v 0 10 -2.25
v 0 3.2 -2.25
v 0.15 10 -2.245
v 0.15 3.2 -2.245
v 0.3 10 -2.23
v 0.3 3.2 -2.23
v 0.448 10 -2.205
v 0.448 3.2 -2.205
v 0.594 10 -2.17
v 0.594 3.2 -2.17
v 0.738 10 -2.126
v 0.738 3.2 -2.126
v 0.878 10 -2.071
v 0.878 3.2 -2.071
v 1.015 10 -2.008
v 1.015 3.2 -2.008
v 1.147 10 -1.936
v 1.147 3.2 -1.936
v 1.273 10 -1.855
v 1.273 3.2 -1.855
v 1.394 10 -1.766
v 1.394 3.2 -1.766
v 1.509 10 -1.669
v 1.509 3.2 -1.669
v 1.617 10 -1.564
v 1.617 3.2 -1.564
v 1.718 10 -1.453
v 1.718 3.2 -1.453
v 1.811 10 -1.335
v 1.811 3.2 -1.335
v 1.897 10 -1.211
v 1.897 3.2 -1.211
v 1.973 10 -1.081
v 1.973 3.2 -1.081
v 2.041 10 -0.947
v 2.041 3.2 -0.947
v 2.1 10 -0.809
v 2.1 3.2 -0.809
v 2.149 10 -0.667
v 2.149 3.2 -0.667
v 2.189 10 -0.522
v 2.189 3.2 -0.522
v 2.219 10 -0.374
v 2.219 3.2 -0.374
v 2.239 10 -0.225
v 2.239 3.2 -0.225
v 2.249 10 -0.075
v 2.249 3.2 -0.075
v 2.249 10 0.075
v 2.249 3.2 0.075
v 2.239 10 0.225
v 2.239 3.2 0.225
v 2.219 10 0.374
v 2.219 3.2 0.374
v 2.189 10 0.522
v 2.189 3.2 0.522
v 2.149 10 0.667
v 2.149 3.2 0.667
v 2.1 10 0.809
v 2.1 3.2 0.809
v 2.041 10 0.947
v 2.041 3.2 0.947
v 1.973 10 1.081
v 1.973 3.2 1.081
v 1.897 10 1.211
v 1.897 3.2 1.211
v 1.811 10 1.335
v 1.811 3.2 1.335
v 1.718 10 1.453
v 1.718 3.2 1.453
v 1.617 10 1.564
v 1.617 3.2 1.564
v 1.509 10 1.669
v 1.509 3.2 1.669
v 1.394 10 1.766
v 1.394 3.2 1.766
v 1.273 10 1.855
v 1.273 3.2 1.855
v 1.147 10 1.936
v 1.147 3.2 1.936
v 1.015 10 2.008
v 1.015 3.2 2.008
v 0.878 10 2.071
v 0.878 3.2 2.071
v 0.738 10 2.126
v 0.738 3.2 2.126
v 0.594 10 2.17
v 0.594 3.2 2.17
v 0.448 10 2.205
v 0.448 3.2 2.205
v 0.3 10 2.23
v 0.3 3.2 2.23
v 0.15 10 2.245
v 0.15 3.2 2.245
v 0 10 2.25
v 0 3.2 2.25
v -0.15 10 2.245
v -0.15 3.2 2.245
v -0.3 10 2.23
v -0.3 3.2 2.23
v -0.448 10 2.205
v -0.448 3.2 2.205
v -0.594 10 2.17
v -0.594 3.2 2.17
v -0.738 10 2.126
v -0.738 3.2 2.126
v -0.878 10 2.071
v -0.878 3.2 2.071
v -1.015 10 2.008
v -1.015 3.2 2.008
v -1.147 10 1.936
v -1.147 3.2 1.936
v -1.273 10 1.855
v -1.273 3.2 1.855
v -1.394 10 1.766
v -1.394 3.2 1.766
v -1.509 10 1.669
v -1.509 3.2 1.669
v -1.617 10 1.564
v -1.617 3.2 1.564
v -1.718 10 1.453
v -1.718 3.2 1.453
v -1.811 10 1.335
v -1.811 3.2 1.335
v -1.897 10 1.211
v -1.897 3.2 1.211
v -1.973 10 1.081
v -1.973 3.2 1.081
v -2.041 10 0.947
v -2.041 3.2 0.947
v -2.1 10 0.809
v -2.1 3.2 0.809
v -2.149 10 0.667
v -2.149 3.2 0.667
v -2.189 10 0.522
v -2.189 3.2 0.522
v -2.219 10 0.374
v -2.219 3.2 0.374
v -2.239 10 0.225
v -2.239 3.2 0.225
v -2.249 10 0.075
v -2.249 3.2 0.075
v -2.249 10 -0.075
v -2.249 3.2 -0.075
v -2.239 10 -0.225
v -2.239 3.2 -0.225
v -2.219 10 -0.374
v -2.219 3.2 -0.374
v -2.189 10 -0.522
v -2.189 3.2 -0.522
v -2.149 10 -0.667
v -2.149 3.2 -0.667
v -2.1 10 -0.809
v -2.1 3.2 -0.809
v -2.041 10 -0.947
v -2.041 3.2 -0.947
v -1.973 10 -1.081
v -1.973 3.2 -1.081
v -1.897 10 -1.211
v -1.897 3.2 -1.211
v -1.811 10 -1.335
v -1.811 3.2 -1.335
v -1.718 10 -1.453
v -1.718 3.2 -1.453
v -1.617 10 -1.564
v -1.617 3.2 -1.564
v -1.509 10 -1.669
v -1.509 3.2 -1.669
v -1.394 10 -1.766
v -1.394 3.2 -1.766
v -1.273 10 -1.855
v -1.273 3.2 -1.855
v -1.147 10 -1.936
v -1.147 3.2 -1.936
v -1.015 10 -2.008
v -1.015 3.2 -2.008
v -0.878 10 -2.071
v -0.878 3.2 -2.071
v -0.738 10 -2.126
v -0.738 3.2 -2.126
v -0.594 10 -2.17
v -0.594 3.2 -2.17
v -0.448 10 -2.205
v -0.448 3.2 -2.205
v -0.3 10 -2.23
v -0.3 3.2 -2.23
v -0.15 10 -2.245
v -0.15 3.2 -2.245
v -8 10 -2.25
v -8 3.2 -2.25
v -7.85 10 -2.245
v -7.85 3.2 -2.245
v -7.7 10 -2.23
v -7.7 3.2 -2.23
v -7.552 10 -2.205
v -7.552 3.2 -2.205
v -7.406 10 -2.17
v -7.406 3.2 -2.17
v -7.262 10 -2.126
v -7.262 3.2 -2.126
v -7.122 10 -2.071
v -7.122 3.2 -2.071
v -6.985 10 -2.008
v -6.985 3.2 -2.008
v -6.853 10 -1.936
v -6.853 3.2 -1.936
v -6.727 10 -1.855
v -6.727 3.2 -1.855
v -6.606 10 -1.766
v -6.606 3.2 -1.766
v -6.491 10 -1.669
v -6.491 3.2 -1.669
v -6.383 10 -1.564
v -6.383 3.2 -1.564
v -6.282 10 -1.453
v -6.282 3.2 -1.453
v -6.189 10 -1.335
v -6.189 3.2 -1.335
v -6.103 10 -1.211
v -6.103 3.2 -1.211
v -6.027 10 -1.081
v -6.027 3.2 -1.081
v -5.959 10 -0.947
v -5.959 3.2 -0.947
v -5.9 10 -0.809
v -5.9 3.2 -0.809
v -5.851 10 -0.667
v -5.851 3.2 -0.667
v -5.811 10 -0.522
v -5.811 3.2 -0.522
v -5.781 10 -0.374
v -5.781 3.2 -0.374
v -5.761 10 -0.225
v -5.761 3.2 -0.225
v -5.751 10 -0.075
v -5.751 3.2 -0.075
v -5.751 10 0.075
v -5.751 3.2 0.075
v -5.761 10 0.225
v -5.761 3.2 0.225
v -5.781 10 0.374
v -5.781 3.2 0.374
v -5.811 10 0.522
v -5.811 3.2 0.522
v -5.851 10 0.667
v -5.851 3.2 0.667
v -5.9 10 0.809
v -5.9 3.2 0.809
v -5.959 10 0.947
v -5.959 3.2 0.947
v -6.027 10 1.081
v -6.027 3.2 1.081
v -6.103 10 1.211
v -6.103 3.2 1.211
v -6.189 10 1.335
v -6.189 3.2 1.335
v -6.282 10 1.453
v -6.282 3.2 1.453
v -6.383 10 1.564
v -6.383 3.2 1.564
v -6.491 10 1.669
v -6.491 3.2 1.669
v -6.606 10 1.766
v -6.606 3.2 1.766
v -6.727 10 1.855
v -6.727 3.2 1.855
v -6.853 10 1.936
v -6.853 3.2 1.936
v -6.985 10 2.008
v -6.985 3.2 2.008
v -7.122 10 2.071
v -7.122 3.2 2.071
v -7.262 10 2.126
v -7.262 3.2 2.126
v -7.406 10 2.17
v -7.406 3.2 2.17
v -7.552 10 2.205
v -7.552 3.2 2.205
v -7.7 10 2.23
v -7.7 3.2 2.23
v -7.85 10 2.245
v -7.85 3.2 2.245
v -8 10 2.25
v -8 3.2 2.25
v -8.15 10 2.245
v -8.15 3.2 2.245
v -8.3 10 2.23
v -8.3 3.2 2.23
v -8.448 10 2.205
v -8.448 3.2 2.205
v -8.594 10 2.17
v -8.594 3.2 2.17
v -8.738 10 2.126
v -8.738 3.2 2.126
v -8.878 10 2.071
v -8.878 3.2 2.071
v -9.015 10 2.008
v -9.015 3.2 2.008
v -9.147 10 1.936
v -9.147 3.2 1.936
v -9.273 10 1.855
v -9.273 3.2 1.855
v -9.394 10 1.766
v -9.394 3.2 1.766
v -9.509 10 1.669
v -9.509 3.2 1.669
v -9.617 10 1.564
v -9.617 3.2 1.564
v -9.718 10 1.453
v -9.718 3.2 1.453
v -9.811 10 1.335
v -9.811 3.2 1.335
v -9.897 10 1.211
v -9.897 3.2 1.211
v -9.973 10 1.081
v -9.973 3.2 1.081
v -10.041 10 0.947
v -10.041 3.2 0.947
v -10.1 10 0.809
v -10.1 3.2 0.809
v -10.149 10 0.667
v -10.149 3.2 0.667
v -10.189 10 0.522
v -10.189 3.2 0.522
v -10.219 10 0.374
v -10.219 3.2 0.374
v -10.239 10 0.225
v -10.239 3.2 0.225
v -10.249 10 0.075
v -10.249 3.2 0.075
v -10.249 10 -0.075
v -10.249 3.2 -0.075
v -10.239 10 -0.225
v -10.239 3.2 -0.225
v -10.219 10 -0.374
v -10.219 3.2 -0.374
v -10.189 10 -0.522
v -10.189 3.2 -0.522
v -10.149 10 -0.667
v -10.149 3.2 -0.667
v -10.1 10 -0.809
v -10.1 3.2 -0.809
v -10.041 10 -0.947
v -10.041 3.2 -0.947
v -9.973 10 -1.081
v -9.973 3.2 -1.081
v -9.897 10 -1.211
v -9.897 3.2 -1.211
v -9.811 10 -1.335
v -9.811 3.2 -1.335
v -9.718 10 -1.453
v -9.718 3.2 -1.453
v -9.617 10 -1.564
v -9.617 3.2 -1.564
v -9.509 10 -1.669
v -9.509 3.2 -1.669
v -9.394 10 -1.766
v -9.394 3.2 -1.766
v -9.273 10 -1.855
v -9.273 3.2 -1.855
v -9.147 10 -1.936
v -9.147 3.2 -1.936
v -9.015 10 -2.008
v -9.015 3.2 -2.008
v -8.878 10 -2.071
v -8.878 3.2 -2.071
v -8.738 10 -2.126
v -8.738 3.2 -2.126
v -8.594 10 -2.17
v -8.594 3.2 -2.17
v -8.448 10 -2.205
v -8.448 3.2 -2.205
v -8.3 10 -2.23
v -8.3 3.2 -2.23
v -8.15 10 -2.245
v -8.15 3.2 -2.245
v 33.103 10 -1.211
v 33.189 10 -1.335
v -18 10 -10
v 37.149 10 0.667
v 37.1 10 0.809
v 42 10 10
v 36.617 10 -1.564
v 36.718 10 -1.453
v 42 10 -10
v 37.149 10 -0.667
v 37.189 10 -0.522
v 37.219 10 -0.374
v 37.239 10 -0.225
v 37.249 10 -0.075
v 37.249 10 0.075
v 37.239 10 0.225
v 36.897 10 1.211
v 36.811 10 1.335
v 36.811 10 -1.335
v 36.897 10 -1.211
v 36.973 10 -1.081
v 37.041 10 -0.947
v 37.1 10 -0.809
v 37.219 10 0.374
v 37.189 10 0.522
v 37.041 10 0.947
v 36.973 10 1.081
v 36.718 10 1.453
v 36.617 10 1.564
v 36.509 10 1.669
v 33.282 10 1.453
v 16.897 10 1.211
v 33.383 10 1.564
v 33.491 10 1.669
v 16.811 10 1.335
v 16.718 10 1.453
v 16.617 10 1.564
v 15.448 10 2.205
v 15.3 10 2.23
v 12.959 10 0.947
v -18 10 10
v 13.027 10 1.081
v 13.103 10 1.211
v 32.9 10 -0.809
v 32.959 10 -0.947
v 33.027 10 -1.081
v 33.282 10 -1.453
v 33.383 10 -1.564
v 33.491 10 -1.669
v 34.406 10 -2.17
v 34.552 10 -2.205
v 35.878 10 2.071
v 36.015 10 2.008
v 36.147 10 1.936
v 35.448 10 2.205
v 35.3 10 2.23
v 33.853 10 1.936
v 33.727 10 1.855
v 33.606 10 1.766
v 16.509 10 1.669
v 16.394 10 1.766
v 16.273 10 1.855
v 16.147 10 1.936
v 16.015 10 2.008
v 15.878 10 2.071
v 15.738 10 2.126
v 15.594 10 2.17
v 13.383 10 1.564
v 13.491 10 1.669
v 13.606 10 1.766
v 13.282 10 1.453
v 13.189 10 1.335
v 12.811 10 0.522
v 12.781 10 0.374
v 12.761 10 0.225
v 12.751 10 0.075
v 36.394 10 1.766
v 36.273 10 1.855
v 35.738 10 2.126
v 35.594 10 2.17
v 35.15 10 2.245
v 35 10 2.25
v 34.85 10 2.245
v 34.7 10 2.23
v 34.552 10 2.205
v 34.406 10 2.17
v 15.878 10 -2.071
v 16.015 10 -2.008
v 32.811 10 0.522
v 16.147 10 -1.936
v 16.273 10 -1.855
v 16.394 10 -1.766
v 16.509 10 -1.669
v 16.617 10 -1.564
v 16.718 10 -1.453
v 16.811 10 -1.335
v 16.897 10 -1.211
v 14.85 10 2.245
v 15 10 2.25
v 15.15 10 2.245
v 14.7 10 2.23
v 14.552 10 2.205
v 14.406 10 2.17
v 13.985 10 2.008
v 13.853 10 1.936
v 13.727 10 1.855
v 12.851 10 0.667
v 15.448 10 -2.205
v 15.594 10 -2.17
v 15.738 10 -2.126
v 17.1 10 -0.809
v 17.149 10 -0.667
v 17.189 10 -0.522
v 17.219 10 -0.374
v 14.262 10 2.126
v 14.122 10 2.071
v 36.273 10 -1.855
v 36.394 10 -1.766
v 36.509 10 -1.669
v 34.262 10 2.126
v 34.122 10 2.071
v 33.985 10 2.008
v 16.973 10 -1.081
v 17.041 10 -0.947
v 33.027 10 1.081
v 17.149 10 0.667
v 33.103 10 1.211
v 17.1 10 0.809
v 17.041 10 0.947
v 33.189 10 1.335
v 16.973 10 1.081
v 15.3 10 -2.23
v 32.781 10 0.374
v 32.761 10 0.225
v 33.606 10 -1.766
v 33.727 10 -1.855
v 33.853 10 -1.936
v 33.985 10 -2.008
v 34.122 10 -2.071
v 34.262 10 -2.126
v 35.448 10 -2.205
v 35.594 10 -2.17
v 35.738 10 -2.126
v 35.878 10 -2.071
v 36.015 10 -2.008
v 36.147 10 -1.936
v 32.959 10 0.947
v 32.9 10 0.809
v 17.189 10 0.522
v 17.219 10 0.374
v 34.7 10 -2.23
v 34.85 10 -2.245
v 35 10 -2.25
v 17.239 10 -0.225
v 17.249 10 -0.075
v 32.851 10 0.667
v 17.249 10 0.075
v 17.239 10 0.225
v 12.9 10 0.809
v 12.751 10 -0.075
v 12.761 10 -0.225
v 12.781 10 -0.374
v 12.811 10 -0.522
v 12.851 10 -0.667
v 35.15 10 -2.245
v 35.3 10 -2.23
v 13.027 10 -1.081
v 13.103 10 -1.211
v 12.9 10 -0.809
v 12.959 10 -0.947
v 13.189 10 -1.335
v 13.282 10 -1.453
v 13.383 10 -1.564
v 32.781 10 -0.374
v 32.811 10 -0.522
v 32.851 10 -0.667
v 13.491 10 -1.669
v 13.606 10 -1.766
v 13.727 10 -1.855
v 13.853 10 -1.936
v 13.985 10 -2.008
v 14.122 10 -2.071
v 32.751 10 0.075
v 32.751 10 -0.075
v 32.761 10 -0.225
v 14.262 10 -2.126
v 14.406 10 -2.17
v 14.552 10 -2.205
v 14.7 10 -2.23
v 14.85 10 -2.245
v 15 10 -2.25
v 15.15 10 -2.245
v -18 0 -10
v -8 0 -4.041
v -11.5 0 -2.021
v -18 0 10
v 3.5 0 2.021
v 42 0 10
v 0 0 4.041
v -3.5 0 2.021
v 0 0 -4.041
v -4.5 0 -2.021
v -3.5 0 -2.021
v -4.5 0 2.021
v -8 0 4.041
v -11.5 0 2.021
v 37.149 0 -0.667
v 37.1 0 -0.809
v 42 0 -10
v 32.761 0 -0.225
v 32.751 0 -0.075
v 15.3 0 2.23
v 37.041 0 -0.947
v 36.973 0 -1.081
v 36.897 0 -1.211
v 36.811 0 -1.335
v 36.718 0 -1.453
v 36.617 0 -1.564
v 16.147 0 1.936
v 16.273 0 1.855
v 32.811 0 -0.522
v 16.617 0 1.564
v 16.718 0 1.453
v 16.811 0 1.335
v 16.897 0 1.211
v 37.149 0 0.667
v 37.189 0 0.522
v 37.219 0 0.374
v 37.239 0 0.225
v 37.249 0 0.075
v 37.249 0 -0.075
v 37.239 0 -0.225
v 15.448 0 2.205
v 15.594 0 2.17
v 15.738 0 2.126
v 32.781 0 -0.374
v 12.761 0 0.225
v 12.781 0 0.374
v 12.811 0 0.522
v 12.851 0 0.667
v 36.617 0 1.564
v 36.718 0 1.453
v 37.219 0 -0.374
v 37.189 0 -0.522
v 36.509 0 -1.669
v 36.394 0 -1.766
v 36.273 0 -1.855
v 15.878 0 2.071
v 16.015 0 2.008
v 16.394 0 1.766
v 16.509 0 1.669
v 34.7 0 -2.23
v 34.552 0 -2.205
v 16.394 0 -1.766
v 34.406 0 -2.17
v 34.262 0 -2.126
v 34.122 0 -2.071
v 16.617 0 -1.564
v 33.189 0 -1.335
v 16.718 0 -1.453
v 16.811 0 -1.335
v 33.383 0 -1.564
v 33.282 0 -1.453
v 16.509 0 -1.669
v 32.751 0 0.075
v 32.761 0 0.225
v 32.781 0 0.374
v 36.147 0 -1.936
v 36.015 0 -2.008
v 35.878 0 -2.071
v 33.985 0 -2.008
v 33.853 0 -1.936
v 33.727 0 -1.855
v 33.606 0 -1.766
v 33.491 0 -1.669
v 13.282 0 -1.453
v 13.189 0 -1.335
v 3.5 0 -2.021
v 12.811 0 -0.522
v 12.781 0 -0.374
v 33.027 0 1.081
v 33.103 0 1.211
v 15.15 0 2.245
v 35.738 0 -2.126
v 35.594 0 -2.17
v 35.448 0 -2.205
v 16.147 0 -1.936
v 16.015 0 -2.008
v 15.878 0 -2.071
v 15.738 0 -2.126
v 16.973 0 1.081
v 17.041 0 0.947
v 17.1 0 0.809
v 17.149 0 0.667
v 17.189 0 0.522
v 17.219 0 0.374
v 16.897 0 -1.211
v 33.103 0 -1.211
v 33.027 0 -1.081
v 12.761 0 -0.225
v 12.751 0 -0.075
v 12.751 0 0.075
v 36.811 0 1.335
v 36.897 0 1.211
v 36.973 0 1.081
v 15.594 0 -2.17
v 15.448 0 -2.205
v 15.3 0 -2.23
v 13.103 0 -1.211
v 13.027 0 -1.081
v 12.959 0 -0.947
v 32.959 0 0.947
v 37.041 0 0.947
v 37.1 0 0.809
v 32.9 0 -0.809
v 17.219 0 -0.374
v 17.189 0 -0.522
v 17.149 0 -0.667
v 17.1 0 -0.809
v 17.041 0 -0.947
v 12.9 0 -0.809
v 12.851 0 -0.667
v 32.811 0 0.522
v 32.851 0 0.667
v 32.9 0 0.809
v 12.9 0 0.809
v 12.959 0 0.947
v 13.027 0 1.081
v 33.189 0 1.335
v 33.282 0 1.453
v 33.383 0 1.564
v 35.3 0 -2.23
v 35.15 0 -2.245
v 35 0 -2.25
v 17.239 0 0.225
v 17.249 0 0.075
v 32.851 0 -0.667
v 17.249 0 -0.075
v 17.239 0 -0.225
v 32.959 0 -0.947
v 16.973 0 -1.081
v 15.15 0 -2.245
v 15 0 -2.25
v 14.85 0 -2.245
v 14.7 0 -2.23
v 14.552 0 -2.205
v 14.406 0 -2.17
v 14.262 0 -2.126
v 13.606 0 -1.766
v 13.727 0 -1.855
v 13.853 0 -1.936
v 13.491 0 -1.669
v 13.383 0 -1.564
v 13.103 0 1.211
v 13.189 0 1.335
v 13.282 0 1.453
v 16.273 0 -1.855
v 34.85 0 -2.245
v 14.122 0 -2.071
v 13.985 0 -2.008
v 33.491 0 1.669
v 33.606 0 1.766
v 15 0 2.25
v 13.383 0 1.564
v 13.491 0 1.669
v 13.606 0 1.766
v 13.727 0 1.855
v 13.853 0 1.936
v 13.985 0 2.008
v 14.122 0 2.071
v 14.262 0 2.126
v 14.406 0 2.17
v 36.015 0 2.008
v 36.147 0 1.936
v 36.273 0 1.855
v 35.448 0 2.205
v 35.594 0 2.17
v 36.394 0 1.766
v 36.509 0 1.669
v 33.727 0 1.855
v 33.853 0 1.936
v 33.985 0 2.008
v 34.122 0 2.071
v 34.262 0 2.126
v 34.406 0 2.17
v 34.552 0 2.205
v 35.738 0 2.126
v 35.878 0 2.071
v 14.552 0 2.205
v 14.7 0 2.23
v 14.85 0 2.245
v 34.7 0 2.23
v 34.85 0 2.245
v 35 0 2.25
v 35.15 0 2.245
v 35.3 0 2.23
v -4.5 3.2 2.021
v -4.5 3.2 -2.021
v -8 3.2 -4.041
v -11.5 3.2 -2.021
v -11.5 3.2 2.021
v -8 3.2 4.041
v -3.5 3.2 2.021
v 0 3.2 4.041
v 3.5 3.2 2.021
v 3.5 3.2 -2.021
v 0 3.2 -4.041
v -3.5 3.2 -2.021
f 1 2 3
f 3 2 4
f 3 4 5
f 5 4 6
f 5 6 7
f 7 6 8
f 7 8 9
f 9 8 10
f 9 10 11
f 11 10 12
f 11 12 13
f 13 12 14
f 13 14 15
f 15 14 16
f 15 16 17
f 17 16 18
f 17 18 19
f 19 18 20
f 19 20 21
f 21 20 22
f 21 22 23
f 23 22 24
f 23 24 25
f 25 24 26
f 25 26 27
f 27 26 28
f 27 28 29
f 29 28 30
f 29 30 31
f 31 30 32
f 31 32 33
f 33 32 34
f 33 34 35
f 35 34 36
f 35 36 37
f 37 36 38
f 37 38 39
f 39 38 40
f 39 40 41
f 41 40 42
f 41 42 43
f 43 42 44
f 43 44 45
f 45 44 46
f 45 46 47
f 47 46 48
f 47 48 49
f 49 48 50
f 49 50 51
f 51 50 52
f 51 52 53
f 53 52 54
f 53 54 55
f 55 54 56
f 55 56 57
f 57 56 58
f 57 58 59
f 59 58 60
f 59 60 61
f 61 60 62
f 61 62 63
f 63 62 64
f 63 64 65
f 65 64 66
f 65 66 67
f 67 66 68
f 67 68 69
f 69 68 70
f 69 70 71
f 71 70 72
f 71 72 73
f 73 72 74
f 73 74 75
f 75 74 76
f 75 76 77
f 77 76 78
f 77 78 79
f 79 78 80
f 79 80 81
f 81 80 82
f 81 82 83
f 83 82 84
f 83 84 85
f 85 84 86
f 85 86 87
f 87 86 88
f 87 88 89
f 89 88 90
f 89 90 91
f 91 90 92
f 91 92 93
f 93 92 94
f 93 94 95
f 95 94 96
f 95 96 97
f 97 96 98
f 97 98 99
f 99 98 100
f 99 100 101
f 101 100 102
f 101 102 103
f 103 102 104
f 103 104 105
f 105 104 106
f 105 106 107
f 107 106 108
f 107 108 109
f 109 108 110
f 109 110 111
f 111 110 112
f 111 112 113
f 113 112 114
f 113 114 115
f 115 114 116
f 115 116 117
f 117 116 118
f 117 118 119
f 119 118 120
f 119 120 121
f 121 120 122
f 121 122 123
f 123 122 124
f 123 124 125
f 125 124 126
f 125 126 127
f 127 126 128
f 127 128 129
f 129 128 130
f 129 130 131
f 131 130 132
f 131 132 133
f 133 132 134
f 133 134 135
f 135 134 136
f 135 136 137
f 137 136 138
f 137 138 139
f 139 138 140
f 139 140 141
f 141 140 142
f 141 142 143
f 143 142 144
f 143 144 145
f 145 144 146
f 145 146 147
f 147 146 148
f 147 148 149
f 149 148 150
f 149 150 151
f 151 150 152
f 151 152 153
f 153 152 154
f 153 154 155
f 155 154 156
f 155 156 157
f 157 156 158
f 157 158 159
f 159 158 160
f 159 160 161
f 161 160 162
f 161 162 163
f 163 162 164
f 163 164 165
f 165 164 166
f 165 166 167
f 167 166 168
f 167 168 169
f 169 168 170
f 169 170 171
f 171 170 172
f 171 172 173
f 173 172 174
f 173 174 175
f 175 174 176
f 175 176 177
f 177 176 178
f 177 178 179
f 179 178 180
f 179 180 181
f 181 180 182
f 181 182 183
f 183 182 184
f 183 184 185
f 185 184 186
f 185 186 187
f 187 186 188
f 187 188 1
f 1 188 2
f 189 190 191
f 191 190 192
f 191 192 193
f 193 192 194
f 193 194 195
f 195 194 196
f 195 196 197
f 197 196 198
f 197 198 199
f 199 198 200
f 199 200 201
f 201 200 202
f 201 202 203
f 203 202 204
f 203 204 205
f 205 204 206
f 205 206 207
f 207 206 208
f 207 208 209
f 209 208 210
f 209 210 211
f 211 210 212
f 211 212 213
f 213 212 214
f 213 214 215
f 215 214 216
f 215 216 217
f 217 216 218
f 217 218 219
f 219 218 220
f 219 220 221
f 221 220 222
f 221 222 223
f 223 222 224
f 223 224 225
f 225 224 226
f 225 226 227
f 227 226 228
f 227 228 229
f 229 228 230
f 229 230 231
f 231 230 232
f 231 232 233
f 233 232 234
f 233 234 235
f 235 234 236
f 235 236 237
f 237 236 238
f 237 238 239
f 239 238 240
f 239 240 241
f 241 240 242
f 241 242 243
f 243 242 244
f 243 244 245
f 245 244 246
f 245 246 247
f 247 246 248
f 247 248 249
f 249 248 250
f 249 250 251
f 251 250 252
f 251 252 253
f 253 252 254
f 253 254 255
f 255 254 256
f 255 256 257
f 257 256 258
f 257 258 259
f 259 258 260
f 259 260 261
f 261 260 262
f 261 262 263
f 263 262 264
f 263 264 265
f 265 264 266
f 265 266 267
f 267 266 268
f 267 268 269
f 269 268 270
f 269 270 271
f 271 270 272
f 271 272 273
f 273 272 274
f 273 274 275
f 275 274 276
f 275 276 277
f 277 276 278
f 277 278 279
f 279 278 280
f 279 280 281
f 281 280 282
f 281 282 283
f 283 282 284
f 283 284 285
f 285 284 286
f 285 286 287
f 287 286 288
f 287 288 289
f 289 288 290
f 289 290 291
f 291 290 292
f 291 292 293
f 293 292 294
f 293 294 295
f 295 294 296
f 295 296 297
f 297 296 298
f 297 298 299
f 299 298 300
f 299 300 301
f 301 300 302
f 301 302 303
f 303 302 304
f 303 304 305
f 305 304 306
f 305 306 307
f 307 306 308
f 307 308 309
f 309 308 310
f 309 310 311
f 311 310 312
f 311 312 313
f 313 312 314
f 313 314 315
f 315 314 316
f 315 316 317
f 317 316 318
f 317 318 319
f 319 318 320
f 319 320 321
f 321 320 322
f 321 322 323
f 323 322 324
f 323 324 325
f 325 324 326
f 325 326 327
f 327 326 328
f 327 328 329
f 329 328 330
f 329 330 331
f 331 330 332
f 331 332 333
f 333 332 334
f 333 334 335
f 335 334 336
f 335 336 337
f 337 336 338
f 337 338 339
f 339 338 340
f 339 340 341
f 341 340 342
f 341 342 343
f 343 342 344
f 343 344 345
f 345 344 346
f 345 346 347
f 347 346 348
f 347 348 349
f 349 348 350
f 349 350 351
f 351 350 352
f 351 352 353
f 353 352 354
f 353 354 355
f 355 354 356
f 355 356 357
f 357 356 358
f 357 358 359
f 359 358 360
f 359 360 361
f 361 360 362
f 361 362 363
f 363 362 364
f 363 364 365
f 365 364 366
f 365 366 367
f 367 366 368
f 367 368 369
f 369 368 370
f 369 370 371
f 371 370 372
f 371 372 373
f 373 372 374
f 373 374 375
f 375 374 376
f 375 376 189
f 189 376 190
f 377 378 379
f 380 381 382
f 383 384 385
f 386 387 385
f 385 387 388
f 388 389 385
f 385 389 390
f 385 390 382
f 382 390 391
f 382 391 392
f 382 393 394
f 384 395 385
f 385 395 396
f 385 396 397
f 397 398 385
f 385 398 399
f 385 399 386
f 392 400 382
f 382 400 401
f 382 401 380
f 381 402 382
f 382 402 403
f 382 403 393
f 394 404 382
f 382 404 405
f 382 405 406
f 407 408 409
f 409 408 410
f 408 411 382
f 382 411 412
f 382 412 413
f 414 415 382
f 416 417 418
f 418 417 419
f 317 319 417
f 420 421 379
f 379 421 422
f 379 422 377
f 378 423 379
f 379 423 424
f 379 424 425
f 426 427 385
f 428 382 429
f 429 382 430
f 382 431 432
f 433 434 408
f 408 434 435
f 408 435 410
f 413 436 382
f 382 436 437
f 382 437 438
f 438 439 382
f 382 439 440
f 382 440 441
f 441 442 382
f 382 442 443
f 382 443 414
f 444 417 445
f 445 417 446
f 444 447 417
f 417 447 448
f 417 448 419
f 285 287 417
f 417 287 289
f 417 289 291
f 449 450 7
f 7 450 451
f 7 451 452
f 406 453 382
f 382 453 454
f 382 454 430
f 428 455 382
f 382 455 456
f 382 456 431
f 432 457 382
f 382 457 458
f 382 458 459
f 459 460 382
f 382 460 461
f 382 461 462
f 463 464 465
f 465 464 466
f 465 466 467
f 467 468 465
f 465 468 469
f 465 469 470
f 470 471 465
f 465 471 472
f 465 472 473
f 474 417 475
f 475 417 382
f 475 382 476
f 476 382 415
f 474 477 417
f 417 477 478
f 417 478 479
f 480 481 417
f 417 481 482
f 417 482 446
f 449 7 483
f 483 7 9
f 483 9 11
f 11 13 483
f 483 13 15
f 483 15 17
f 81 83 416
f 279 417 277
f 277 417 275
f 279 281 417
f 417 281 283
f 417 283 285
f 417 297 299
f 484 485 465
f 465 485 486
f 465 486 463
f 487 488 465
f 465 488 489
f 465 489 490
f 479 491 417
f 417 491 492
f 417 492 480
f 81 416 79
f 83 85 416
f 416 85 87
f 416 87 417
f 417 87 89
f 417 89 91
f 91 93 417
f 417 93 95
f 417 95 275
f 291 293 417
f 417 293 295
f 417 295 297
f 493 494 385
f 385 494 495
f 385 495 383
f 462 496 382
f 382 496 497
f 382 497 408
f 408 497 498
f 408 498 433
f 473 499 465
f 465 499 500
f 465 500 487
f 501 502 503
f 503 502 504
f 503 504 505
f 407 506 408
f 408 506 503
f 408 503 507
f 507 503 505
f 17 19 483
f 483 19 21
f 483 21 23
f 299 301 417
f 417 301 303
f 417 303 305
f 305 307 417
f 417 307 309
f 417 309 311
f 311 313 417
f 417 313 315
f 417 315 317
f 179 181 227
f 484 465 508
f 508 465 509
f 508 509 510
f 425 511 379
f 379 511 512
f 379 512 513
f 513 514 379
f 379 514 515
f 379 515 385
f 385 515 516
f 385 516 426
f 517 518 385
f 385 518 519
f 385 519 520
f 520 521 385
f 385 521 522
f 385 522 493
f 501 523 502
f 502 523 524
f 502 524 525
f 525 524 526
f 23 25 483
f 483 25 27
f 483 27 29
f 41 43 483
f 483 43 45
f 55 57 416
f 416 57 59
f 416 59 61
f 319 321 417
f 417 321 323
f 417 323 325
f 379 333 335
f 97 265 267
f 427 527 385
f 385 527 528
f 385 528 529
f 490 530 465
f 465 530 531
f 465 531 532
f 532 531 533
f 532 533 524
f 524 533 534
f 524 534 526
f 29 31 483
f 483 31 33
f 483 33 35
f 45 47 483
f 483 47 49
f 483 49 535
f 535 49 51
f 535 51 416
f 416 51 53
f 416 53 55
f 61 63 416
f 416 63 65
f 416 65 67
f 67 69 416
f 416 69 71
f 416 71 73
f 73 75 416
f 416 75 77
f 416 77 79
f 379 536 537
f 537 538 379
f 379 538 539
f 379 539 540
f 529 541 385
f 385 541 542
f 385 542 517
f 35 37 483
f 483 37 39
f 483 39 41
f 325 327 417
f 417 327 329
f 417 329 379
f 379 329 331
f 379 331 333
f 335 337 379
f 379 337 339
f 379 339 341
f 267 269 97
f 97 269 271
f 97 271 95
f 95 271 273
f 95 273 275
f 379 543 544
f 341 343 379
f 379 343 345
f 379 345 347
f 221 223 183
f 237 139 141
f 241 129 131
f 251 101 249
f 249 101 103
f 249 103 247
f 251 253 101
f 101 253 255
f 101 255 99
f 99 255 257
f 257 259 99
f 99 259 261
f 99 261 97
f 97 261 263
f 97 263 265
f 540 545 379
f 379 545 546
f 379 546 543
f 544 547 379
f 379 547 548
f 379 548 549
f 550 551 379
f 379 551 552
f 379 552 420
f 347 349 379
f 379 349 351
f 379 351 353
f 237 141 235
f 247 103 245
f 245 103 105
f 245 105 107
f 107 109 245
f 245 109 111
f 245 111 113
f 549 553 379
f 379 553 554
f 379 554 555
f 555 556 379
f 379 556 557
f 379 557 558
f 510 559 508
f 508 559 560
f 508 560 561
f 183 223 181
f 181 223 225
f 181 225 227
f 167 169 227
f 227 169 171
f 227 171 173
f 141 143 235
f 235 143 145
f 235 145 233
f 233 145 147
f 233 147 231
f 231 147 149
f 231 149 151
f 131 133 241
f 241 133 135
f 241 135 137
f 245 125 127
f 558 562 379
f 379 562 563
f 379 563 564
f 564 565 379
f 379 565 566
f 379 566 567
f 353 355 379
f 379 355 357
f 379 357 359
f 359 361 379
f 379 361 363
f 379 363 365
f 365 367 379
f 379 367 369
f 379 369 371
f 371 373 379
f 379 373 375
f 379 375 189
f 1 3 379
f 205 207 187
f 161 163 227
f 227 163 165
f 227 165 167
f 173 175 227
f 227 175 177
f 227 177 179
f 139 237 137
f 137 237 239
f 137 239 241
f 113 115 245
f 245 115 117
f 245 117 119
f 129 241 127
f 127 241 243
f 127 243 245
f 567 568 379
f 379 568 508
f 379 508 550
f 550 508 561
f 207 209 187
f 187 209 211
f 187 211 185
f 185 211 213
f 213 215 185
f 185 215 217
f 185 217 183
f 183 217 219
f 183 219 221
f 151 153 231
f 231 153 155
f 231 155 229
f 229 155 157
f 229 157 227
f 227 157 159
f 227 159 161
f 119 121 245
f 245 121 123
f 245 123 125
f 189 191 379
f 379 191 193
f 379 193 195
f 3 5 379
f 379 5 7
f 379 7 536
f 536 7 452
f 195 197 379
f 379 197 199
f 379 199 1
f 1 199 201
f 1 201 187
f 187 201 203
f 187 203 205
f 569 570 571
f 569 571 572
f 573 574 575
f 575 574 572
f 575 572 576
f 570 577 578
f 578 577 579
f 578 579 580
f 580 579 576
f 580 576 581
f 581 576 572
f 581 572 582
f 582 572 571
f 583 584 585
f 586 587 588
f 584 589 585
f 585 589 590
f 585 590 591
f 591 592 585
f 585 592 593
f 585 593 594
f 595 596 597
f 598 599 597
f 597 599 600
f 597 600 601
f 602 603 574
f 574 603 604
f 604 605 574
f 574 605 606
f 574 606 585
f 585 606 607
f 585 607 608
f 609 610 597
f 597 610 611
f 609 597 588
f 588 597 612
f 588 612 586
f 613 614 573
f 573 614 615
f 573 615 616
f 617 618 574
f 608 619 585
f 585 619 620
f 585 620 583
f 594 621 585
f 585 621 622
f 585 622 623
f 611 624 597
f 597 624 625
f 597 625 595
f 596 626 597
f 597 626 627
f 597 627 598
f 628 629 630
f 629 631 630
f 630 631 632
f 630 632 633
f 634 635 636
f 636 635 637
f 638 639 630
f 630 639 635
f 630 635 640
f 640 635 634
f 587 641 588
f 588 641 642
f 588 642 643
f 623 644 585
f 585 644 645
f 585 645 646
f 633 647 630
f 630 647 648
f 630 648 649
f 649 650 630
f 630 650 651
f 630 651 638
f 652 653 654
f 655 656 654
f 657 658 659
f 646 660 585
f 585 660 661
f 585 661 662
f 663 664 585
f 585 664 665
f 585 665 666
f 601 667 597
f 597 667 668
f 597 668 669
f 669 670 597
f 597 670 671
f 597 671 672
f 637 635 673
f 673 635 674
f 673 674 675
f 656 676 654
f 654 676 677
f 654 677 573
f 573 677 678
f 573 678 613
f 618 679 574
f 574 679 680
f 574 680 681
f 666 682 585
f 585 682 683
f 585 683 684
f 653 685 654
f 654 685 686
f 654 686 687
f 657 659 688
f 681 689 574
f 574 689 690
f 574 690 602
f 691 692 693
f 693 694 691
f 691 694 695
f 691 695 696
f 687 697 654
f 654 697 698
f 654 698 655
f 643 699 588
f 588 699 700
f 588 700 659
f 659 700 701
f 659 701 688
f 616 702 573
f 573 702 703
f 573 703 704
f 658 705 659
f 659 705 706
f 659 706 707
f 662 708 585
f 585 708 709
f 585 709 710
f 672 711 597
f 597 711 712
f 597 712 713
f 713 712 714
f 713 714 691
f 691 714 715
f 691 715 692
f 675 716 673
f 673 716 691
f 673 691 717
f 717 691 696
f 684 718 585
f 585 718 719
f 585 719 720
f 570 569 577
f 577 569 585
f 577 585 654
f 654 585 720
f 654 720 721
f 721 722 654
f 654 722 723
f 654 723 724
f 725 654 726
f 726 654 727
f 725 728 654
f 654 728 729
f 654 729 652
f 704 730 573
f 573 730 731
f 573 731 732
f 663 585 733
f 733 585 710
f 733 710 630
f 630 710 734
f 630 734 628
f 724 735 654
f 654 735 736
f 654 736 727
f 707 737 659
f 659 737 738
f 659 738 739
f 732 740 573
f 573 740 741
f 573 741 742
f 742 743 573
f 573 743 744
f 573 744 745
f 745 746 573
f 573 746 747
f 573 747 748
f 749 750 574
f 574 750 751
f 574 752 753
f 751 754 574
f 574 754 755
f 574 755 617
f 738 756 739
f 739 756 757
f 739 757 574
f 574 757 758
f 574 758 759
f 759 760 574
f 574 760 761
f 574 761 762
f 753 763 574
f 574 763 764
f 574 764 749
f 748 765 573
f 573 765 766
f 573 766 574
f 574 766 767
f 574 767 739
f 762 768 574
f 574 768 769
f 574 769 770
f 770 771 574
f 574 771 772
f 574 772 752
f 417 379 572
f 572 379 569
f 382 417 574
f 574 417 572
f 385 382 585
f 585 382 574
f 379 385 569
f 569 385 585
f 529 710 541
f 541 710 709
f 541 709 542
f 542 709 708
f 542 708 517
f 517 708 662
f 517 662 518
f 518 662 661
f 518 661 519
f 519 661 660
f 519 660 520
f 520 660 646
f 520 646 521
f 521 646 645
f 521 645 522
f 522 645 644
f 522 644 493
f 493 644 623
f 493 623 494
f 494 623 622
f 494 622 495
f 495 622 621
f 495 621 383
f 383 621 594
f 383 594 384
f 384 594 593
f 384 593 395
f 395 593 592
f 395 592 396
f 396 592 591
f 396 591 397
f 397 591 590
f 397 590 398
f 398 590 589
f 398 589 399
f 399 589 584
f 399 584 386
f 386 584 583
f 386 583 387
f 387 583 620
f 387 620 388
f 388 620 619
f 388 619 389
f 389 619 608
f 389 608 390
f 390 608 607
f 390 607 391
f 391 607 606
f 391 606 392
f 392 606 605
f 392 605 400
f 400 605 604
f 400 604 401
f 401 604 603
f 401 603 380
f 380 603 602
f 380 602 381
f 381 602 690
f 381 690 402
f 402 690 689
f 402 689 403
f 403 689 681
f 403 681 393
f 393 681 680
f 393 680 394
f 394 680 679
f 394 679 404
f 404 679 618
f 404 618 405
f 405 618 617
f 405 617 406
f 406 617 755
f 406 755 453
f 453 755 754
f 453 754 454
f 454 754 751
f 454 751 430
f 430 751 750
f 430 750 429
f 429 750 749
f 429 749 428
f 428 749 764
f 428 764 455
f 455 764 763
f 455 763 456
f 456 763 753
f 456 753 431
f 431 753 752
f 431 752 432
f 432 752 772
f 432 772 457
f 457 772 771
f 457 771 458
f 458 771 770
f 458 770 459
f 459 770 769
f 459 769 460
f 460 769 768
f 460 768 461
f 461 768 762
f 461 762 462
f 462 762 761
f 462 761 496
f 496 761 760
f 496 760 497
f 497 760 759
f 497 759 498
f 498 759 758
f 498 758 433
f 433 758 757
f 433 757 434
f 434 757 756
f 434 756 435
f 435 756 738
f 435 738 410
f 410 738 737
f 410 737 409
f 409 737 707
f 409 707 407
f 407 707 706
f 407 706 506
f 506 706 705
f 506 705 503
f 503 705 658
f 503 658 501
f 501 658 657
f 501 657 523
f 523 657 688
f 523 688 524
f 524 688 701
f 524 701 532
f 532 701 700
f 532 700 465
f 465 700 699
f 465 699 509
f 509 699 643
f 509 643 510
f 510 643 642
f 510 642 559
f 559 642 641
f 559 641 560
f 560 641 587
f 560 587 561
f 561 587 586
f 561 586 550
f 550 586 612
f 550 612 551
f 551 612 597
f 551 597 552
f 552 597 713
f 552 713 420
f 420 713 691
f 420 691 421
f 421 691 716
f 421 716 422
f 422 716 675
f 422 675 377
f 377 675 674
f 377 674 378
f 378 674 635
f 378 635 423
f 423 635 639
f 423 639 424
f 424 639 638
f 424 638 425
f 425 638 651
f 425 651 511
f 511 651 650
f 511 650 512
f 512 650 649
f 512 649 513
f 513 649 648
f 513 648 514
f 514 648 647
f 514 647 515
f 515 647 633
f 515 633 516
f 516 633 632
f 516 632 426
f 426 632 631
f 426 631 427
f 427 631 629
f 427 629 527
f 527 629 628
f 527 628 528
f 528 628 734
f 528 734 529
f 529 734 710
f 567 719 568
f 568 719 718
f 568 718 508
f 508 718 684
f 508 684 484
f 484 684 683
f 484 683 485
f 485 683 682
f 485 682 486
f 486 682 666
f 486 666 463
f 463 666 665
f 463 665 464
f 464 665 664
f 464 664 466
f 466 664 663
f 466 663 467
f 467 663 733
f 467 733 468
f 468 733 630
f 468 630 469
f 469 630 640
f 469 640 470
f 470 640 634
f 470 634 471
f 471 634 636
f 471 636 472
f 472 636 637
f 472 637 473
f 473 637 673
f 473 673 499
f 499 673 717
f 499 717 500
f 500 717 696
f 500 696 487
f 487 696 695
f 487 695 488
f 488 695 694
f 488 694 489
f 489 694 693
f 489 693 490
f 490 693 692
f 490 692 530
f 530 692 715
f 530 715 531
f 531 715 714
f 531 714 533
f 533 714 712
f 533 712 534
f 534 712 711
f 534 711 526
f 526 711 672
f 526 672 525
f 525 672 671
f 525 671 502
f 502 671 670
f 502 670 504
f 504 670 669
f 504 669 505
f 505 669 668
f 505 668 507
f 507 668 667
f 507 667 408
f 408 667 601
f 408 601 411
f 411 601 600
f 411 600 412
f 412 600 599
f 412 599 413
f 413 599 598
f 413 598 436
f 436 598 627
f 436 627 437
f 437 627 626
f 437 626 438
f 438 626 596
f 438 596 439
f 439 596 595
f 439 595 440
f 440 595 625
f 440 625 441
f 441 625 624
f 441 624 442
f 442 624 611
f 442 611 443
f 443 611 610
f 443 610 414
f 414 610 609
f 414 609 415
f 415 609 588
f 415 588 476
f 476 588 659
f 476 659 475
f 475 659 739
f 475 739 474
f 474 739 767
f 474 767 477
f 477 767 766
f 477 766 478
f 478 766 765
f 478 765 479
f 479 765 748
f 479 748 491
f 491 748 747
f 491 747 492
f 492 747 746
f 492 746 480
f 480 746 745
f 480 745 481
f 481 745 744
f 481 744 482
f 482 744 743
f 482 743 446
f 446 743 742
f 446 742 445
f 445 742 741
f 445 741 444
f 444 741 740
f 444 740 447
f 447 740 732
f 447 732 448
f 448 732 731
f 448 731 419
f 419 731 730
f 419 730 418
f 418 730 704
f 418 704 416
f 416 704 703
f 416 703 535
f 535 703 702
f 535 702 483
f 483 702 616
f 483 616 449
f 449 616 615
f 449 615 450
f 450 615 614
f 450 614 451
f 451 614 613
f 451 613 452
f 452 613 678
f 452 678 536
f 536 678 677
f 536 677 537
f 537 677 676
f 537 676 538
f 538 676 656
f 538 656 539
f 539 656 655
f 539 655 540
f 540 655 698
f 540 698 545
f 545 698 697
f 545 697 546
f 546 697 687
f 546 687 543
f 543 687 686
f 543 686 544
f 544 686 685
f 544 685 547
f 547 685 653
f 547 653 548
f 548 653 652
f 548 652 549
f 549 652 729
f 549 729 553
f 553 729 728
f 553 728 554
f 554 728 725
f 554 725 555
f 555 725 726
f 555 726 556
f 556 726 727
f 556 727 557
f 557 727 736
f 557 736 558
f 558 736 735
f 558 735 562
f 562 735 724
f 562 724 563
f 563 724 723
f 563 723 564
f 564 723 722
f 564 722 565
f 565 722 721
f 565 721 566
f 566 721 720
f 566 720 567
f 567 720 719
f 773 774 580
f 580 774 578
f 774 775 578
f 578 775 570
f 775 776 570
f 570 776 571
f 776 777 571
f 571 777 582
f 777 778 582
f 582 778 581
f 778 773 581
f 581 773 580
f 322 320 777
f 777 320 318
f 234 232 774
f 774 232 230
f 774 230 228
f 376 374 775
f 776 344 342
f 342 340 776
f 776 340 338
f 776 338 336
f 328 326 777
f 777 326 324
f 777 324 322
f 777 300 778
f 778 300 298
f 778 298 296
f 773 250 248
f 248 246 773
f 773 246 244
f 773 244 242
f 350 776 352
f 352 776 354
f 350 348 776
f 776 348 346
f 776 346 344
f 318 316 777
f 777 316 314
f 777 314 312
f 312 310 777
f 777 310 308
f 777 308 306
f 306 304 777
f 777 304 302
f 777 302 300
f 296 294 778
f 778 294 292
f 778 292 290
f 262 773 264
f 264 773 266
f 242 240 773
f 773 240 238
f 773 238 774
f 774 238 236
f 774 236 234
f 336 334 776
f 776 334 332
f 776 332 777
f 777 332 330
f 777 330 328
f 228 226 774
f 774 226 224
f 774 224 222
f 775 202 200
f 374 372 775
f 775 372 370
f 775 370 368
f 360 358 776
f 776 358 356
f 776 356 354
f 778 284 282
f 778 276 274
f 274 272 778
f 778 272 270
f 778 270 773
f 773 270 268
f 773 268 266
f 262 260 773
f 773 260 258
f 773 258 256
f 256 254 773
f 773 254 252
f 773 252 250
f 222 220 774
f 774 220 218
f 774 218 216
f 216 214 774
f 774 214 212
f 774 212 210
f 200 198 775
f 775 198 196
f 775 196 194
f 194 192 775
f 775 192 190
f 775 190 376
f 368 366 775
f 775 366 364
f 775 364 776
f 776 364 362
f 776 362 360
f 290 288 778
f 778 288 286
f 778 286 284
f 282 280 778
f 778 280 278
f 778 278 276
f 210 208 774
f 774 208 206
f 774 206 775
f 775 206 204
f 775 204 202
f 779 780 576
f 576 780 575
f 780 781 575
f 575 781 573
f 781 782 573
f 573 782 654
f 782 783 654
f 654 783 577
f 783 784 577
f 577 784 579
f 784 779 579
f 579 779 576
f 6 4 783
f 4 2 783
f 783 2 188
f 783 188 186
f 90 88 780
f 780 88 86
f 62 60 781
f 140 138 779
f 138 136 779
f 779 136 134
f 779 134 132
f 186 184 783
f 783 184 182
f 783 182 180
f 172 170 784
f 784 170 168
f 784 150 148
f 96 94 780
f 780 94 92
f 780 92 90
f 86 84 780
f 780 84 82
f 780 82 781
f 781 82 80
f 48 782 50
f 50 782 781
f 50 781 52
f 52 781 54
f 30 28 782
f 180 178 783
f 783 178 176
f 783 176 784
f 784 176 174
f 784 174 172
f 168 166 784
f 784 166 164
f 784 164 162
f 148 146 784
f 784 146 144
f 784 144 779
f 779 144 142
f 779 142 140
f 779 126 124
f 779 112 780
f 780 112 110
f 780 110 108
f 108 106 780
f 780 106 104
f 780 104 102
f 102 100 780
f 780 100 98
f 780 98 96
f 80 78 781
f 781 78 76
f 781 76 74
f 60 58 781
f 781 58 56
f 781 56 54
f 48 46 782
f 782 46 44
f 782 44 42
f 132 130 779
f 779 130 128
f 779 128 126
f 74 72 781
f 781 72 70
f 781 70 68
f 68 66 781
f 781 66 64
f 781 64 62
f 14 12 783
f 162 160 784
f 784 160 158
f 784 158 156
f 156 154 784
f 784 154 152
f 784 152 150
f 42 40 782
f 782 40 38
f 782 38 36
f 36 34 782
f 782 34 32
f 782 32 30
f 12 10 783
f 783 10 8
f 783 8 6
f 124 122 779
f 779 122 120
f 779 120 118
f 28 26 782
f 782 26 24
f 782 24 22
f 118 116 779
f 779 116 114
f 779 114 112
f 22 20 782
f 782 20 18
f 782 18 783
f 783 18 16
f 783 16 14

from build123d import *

# Parameters (mm, degrees)
SKETCH1_W           = 60
SKETCH1_H           = 20
SKETCH1_R           = 2.25
BOSS_EXTRUDE1_DEPTH = 10
CUT_EXTRUDE1_DEPTH  = 3.2


with BuildPart() as part:
    # Sketch1 → Boss-Extrude1 (new body)
    with BuildSketch(Plane(origin=(0, 0, 0), x_dir=(1, 0, 0), z_dir=(0, 1, 0))):
        with Locations((12, 0)):
            Rectangle(SKETCH1_W, SKETCH1_H)
        Circle(SKETCH1_R, mode=Mode.SUBTRACT)
        with Locations((-8, 0)):
            Circle(SKETCH1_R, mode=Mode.SUBTRACT)
        with Locations((35, 0)):
            Circle(SKETCH1_R, mode=Mode.SUBTRACT)
        with Locations((15, 0)):
            Circle(SKETCH1_R, mode=Mode.SUBTRACT)
    extrude(amount=BOSS_EXTRUDE1_DEPTH)

    # Sketch2 → Cut-Extrude1 (cut)
    with BuildSketch(Plane.XZ):
        Polygon((-3.5, 2.020725942), (-3.5, -2.020725942), (0, -4.041451884), (3.5, -2.020725942), (3.5, 2.020725942), (0, 4.041451884), align=None)
        Polygon((-4.5, 2.020725942), (-8, 4.041451884), (-11.5, 2.020725942), (-11.5, -2.020725942), (-8, -4.041451884), (-4.5, -2.020725942), align=None)
    extrude(amount=-CUT_EXTRUDE1_DEPTH, mode=Mode.SUBTRACT)


solid = part.part
